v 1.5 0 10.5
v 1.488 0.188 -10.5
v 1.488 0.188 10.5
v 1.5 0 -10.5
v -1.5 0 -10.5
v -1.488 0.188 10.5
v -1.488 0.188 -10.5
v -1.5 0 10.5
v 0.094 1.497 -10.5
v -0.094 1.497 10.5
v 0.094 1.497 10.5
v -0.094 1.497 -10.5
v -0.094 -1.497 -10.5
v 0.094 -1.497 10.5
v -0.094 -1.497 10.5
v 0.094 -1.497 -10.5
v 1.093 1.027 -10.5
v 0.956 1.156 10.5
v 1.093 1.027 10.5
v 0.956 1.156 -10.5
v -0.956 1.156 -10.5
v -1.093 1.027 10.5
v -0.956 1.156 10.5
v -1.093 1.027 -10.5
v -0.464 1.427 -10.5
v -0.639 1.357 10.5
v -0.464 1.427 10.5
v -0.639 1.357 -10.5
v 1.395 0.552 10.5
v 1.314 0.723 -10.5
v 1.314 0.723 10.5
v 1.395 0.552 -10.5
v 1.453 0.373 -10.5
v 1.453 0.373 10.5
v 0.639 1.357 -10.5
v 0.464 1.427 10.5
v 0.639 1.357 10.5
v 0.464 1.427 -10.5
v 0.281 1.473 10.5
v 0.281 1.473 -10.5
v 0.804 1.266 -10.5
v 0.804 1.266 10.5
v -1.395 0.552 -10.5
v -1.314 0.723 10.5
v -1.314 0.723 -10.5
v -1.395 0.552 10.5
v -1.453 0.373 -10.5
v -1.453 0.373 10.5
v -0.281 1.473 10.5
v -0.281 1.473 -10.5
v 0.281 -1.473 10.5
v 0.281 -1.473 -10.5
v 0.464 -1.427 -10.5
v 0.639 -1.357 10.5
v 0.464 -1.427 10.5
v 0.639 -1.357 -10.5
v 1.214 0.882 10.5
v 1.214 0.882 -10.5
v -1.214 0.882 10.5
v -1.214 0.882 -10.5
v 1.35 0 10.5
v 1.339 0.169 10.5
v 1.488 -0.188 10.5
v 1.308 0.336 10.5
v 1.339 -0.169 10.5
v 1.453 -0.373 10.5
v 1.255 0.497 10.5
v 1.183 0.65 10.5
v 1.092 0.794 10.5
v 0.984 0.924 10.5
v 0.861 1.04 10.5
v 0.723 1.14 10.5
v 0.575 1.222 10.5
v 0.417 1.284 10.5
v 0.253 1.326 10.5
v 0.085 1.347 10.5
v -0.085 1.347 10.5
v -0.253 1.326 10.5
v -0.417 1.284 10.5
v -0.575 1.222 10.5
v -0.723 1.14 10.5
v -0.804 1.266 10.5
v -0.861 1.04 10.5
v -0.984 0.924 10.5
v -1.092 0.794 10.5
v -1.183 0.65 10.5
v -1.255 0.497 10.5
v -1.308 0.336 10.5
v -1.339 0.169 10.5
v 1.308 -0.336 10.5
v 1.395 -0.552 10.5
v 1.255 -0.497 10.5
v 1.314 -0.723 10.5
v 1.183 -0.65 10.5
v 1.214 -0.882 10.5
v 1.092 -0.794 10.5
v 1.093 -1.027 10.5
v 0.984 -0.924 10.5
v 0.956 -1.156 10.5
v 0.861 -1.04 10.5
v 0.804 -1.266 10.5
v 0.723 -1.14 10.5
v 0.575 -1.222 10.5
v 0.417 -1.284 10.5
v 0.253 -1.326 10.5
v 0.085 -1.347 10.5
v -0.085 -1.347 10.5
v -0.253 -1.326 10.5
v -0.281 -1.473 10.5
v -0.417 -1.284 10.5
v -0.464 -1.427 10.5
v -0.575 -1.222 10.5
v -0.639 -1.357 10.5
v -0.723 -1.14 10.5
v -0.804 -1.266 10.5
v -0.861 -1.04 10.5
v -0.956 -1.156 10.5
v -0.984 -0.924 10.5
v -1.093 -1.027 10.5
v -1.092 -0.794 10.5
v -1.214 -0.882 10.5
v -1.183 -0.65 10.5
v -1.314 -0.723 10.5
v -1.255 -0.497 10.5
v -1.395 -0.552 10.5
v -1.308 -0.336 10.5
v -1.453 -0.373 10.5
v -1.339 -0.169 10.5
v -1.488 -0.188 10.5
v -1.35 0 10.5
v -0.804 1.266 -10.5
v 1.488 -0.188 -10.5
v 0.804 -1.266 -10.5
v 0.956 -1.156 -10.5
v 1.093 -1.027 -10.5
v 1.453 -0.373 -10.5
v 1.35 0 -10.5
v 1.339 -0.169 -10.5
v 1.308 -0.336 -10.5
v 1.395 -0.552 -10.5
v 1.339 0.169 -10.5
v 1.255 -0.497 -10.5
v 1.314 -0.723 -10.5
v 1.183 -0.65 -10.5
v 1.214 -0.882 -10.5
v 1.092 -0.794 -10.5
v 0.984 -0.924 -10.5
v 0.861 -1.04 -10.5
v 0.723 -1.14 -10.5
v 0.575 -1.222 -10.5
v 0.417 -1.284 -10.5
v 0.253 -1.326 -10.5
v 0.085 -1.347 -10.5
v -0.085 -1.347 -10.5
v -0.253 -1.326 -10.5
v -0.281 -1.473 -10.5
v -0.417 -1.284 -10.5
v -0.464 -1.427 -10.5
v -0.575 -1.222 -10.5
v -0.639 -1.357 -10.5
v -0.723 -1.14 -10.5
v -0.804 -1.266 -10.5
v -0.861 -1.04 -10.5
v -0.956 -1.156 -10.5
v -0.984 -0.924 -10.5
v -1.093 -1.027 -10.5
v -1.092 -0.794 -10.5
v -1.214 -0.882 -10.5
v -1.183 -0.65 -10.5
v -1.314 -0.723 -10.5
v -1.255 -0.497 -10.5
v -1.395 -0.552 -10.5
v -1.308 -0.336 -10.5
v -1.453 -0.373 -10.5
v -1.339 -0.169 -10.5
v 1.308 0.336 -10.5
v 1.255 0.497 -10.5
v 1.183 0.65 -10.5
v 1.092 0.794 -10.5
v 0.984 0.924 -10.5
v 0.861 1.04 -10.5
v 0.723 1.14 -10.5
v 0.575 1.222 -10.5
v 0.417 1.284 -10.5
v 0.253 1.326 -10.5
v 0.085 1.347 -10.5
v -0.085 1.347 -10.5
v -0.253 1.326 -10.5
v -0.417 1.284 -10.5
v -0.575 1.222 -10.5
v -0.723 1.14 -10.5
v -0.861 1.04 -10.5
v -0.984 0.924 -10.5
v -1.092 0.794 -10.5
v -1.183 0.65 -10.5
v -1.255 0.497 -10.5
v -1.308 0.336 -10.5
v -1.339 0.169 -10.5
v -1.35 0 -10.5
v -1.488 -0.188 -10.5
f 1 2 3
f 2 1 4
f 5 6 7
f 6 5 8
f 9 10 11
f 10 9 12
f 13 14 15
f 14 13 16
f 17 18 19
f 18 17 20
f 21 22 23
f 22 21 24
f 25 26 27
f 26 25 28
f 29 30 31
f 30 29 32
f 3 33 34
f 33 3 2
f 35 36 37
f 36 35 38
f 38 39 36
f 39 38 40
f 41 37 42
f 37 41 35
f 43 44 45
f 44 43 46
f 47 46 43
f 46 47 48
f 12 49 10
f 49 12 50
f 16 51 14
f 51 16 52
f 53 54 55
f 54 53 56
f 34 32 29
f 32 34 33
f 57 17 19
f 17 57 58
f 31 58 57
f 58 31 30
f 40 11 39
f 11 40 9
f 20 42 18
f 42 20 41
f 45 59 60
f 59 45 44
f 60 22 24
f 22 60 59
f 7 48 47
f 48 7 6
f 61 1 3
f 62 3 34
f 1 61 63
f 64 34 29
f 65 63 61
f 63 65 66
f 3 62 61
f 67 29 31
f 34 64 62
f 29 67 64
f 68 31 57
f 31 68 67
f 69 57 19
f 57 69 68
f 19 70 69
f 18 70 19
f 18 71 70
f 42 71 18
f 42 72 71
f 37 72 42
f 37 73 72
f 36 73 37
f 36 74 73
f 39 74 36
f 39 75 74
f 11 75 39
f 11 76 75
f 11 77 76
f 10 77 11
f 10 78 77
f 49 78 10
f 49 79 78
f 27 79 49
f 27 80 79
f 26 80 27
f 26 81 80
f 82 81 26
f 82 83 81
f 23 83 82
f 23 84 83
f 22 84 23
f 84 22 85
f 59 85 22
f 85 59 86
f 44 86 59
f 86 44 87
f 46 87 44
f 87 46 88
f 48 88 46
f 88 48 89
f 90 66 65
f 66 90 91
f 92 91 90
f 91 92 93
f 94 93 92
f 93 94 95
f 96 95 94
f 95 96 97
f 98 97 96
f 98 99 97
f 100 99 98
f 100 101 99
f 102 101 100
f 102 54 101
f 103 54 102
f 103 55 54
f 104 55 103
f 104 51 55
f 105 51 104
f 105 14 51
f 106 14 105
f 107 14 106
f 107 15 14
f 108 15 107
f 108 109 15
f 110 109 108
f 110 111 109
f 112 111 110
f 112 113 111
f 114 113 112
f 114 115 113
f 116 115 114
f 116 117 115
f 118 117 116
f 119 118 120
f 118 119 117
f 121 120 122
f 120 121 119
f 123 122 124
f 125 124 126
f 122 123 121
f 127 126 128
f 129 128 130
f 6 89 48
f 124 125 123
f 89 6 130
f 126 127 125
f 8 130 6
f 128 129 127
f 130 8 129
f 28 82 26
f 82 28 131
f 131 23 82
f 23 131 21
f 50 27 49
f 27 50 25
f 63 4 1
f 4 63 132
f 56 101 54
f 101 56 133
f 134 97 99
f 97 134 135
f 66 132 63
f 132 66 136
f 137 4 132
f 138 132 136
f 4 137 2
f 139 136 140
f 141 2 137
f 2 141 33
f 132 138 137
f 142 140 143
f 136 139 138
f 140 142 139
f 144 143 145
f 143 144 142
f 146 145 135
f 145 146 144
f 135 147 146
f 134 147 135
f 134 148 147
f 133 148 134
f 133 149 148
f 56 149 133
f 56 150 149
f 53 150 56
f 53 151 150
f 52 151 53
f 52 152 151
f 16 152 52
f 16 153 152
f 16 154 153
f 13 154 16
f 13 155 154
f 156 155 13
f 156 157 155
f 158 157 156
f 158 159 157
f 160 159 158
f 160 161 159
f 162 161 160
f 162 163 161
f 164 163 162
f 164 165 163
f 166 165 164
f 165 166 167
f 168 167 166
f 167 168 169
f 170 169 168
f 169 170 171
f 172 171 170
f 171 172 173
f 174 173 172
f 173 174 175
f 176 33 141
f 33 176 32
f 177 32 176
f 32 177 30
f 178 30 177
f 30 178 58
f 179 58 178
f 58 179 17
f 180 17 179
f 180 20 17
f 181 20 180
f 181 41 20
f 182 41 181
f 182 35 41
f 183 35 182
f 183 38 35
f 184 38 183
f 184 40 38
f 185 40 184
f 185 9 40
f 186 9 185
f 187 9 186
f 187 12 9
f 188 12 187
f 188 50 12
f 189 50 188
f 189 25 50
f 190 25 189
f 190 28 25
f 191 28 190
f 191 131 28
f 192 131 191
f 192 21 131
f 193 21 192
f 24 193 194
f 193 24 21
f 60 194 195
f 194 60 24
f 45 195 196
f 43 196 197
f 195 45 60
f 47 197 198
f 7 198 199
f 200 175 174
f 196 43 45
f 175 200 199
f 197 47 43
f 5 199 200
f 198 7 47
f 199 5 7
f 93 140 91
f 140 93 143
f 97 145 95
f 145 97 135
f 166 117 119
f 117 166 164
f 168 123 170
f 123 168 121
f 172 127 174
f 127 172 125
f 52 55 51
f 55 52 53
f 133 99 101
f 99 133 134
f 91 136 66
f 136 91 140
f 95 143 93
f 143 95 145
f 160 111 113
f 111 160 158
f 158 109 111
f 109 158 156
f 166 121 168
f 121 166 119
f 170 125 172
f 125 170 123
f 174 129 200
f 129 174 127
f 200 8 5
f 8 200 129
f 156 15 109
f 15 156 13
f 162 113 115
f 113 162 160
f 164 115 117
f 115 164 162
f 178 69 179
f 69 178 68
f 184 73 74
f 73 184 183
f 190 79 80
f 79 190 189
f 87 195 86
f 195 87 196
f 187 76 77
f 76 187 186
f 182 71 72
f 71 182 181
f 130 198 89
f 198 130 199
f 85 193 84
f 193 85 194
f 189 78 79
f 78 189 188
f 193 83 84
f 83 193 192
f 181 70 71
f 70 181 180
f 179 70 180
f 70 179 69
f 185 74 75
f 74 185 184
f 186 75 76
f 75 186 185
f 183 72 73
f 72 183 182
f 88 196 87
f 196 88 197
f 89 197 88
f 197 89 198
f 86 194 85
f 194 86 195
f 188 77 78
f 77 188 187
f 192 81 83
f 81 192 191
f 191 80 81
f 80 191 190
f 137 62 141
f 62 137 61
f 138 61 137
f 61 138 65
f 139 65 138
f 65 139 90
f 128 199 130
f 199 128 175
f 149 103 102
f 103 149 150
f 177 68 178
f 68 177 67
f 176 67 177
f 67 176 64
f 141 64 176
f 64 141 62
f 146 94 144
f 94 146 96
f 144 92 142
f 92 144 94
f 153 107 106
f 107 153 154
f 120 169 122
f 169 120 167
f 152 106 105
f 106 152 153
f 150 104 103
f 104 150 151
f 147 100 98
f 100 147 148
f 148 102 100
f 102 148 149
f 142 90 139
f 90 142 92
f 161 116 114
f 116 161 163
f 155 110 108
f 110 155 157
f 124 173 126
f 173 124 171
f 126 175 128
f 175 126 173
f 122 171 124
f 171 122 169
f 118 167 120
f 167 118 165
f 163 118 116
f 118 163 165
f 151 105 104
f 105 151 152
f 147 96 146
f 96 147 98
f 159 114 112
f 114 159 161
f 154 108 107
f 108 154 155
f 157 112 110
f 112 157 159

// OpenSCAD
$fn = 50;


difference() {
	union() {
		translate(v = [0, 0, -10.5000000000]) {
			cylinder(h = 21, r = 1.5000000000);
		}
	}
	union() {
		translate(v = [0, 0, -100.0000000000]) {
			cylinder(h = 200, r = 1.3500000000);
		}
	}
}
